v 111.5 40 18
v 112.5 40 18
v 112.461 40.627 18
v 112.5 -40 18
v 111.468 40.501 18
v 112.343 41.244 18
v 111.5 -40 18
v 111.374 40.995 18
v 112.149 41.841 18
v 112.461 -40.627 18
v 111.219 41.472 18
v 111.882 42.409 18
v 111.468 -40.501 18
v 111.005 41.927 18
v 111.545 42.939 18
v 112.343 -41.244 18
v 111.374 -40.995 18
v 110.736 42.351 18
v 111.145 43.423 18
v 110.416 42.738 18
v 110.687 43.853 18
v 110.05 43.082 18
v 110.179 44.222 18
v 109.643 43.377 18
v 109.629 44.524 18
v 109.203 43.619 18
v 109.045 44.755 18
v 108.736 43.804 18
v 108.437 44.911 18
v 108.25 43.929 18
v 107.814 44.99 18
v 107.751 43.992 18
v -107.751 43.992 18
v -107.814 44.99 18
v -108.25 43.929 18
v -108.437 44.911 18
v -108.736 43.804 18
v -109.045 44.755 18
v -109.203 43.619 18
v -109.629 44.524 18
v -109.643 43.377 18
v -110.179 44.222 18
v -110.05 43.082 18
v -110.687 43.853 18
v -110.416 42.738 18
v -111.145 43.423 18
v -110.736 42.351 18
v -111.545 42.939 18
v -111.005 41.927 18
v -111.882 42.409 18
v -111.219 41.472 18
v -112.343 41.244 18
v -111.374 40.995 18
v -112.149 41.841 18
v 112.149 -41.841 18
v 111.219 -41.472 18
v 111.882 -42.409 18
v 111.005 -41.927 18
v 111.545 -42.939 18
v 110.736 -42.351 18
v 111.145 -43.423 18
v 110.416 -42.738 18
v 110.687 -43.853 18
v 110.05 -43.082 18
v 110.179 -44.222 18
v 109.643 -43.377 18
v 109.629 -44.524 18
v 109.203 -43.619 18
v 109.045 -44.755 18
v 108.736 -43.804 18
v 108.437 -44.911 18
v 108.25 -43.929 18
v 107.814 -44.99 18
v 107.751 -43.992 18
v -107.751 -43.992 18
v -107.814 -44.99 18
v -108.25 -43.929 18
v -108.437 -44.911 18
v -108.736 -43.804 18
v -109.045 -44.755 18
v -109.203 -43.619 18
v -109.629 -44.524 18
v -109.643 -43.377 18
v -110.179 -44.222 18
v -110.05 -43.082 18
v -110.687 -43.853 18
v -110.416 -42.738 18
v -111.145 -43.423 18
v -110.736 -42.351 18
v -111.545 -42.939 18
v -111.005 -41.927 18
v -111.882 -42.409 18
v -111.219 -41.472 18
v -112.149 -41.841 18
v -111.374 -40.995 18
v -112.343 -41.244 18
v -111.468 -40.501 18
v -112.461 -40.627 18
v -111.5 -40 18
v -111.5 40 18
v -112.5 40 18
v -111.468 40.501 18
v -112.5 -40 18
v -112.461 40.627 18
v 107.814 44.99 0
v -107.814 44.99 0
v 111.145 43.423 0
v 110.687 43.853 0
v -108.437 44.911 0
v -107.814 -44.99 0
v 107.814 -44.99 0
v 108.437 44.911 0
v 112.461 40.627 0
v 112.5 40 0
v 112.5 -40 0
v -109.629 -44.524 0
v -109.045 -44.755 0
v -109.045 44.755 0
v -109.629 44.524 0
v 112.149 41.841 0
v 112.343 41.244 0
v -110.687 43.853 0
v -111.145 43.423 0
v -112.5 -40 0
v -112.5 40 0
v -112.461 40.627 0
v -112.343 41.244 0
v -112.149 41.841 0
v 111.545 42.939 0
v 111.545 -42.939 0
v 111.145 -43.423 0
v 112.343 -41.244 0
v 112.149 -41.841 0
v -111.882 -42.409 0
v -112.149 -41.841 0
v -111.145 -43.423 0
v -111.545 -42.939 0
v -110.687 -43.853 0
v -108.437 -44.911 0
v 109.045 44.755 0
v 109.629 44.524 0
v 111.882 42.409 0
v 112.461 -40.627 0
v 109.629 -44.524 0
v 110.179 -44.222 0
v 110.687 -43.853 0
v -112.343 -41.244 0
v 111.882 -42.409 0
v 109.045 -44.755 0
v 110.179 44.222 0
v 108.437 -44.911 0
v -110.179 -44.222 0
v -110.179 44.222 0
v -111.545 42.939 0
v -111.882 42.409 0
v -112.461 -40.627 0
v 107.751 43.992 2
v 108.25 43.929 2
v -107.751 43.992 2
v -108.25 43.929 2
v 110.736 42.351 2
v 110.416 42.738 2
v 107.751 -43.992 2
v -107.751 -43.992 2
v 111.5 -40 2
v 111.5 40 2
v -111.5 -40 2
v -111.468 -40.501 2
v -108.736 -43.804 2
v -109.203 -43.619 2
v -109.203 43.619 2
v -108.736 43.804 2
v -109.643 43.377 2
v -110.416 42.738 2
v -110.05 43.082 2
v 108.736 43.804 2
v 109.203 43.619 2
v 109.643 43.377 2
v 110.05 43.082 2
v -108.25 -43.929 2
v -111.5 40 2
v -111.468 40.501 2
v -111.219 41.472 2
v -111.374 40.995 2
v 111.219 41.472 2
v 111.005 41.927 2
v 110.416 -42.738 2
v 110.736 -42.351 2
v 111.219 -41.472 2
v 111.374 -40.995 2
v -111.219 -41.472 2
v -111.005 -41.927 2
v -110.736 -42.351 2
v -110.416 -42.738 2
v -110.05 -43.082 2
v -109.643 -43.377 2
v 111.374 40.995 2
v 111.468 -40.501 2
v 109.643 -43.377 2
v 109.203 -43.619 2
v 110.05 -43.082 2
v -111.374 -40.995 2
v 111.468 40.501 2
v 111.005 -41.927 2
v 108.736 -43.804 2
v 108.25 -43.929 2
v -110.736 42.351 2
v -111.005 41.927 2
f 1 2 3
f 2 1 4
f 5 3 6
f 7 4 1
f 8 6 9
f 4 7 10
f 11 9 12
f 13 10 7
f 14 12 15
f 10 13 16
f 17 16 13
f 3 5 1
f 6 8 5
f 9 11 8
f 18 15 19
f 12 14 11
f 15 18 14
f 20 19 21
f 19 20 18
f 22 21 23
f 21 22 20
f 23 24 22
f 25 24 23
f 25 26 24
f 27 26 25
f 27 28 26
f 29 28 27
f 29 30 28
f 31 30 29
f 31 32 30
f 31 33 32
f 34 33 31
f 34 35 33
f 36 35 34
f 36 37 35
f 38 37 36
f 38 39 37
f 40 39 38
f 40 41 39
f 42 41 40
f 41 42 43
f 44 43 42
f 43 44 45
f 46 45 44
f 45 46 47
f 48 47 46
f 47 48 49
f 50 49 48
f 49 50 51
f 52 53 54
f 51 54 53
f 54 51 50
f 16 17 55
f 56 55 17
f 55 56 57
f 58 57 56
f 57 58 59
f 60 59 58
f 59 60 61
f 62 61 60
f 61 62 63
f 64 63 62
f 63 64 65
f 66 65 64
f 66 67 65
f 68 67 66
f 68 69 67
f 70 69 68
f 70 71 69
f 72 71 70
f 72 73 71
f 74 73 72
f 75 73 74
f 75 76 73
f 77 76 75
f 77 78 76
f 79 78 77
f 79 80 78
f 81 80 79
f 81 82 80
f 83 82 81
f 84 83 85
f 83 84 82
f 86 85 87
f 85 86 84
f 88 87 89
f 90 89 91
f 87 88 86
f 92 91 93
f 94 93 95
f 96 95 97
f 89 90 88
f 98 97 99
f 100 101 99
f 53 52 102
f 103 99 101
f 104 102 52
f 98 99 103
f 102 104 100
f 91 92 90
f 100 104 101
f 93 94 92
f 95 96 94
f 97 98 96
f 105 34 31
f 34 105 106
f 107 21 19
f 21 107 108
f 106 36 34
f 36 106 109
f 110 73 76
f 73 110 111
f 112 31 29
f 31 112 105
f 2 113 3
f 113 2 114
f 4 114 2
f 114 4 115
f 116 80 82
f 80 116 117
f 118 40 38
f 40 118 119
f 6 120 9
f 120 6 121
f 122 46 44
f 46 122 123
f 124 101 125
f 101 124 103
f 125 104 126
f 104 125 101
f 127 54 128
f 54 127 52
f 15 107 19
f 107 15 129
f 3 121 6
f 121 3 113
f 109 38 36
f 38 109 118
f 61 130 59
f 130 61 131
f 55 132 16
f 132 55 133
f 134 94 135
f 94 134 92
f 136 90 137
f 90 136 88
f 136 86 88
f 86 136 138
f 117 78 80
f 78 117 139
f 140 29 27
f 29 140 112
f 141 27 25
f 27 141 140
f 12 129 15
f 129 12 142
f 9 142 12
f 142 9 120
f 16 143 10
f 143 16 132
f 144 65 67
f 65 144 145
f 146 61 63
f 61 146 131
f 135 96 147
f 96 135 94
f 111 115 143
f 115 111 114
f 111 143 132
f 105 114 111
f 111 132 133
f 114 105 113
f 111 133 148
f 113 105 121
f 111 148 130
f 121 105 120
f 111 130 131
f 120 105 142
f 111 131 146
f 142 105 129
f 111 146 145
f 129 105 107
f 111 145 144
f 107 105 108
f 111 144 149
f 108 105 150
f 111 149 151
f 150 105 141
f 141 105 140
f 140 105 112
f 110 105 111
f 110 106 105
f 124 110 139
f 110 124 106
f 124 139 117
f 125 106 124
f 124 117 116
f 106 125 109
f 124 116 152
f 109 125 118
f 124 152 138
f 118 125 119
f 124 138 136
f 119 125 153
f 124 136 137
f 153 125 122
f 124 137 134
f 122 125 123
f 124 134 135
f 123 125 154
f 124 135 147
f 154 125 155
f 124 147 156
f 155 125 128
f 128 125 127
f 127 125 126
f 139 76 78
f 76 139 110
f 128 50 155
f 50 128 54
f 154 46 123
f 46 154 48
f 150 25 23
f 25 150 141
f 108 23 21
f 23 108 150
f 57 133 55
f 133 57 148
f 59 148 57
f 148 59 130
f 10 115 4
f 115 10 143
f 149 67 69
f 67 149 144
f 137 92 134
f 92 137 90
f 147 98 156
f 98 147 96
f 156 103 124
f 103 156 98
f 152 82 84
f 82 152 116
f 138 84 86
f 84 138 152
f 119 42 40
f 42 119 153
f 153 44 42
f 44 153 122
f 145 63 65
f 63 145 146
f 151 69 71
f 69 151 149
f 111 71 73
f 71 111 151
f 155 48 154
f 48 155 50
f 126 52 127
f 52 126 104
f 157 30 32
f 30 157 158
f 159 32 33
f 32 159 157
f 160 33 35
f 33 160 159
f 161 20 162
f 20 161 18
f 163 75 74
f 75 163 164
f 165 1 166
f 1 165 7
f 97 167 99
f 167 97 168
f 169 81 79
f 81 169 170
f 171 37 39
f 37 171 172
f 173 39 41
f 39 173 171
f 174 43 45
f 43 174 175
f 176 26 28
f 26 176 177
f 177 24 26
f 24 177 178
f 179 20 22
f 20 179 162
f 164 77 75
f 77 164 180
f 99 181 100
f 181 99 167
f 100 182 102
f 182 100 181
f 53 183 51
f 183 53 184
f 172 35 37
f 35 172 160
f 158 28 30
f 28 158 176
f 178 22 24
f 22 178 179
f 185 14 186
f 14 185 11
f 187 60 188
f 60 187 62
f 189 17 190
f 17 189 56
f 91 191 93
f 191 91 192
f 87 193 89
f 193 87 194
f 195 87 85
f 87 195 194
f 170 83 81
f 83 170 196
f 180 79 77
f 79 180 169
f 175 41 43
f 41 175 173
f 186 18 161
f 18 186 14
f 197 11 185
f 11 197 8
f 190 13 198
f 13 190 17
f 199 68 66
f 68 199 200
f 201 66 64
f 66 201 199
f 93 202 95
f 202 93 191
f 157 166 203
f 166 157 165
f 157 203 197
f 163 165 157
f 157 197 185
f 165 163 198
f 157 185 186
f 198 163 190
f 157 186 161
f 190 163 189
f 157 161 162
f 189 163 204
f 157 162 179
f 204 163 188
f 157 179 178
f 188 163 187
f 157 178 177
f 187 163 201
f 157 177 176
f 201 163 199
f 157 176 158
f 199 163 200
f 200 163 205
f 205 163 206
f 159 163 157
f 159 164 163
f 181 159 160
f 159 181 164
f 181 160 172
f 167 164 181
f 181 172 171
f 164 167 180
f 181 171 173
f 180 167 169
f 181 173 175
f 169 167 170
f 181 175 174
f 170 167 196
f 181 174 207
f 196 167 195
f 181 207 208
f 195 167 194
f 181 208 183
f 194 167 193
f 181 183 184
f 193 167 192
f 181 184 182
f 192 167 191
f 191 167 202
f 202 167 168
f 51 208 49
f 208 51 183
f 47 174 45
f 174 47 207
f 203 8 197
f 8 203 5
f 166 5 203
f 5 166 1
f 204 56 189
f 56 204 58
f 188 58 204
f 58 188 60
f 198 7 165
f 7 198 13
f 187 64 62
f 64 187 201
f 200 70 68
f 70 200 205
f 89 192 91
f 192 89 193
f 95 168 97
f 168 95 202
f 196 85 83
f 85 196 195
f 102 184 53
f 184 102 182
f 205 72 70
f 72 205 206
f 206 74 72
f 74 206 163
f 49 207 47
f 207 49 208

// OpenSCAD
$fn = 50;


difference() {
	union() {
		hull() {
			translate(v = [-107.5000000000, 40.0000000000, 0]) {
				cylinder(h = 18, r = 5);
			}
			translate(v = [107.5000000000, 40.0000000000, 0]) {
				cylinder(h = 18, r = 5);
			}
			translate(v = [-107.5000000000, -40.0000000000, 0]) {
				cylinder(h = 18, r = 5);
			}
			translate(v = [107.5000000000, -40.0000000000, 0]) {
				cylinder(h = 18, r = 5);
			}
		}
	}
	union() {
		translate(v = [0, 0, 2]) {
			hull() {
				translate(v = [-107.5000000000, 40.0000000000, 0]) {
					cylinder(h = 16, r = 4);
				}
				translate(v = [107.5000000000, 40.0000000000, 0]) {
					cylinder(h = 16, r = 4);
				}
				translate(v = [-107.5000000000, -40.0000000000, 0]) {
					cylinder(h = 16, r = 4);
				}
				translate(v = [107.5000000000, -40.0000000000, 0]) {
					cylinder(h = 16, r = 4);
				}
			}
		}
	}
}
